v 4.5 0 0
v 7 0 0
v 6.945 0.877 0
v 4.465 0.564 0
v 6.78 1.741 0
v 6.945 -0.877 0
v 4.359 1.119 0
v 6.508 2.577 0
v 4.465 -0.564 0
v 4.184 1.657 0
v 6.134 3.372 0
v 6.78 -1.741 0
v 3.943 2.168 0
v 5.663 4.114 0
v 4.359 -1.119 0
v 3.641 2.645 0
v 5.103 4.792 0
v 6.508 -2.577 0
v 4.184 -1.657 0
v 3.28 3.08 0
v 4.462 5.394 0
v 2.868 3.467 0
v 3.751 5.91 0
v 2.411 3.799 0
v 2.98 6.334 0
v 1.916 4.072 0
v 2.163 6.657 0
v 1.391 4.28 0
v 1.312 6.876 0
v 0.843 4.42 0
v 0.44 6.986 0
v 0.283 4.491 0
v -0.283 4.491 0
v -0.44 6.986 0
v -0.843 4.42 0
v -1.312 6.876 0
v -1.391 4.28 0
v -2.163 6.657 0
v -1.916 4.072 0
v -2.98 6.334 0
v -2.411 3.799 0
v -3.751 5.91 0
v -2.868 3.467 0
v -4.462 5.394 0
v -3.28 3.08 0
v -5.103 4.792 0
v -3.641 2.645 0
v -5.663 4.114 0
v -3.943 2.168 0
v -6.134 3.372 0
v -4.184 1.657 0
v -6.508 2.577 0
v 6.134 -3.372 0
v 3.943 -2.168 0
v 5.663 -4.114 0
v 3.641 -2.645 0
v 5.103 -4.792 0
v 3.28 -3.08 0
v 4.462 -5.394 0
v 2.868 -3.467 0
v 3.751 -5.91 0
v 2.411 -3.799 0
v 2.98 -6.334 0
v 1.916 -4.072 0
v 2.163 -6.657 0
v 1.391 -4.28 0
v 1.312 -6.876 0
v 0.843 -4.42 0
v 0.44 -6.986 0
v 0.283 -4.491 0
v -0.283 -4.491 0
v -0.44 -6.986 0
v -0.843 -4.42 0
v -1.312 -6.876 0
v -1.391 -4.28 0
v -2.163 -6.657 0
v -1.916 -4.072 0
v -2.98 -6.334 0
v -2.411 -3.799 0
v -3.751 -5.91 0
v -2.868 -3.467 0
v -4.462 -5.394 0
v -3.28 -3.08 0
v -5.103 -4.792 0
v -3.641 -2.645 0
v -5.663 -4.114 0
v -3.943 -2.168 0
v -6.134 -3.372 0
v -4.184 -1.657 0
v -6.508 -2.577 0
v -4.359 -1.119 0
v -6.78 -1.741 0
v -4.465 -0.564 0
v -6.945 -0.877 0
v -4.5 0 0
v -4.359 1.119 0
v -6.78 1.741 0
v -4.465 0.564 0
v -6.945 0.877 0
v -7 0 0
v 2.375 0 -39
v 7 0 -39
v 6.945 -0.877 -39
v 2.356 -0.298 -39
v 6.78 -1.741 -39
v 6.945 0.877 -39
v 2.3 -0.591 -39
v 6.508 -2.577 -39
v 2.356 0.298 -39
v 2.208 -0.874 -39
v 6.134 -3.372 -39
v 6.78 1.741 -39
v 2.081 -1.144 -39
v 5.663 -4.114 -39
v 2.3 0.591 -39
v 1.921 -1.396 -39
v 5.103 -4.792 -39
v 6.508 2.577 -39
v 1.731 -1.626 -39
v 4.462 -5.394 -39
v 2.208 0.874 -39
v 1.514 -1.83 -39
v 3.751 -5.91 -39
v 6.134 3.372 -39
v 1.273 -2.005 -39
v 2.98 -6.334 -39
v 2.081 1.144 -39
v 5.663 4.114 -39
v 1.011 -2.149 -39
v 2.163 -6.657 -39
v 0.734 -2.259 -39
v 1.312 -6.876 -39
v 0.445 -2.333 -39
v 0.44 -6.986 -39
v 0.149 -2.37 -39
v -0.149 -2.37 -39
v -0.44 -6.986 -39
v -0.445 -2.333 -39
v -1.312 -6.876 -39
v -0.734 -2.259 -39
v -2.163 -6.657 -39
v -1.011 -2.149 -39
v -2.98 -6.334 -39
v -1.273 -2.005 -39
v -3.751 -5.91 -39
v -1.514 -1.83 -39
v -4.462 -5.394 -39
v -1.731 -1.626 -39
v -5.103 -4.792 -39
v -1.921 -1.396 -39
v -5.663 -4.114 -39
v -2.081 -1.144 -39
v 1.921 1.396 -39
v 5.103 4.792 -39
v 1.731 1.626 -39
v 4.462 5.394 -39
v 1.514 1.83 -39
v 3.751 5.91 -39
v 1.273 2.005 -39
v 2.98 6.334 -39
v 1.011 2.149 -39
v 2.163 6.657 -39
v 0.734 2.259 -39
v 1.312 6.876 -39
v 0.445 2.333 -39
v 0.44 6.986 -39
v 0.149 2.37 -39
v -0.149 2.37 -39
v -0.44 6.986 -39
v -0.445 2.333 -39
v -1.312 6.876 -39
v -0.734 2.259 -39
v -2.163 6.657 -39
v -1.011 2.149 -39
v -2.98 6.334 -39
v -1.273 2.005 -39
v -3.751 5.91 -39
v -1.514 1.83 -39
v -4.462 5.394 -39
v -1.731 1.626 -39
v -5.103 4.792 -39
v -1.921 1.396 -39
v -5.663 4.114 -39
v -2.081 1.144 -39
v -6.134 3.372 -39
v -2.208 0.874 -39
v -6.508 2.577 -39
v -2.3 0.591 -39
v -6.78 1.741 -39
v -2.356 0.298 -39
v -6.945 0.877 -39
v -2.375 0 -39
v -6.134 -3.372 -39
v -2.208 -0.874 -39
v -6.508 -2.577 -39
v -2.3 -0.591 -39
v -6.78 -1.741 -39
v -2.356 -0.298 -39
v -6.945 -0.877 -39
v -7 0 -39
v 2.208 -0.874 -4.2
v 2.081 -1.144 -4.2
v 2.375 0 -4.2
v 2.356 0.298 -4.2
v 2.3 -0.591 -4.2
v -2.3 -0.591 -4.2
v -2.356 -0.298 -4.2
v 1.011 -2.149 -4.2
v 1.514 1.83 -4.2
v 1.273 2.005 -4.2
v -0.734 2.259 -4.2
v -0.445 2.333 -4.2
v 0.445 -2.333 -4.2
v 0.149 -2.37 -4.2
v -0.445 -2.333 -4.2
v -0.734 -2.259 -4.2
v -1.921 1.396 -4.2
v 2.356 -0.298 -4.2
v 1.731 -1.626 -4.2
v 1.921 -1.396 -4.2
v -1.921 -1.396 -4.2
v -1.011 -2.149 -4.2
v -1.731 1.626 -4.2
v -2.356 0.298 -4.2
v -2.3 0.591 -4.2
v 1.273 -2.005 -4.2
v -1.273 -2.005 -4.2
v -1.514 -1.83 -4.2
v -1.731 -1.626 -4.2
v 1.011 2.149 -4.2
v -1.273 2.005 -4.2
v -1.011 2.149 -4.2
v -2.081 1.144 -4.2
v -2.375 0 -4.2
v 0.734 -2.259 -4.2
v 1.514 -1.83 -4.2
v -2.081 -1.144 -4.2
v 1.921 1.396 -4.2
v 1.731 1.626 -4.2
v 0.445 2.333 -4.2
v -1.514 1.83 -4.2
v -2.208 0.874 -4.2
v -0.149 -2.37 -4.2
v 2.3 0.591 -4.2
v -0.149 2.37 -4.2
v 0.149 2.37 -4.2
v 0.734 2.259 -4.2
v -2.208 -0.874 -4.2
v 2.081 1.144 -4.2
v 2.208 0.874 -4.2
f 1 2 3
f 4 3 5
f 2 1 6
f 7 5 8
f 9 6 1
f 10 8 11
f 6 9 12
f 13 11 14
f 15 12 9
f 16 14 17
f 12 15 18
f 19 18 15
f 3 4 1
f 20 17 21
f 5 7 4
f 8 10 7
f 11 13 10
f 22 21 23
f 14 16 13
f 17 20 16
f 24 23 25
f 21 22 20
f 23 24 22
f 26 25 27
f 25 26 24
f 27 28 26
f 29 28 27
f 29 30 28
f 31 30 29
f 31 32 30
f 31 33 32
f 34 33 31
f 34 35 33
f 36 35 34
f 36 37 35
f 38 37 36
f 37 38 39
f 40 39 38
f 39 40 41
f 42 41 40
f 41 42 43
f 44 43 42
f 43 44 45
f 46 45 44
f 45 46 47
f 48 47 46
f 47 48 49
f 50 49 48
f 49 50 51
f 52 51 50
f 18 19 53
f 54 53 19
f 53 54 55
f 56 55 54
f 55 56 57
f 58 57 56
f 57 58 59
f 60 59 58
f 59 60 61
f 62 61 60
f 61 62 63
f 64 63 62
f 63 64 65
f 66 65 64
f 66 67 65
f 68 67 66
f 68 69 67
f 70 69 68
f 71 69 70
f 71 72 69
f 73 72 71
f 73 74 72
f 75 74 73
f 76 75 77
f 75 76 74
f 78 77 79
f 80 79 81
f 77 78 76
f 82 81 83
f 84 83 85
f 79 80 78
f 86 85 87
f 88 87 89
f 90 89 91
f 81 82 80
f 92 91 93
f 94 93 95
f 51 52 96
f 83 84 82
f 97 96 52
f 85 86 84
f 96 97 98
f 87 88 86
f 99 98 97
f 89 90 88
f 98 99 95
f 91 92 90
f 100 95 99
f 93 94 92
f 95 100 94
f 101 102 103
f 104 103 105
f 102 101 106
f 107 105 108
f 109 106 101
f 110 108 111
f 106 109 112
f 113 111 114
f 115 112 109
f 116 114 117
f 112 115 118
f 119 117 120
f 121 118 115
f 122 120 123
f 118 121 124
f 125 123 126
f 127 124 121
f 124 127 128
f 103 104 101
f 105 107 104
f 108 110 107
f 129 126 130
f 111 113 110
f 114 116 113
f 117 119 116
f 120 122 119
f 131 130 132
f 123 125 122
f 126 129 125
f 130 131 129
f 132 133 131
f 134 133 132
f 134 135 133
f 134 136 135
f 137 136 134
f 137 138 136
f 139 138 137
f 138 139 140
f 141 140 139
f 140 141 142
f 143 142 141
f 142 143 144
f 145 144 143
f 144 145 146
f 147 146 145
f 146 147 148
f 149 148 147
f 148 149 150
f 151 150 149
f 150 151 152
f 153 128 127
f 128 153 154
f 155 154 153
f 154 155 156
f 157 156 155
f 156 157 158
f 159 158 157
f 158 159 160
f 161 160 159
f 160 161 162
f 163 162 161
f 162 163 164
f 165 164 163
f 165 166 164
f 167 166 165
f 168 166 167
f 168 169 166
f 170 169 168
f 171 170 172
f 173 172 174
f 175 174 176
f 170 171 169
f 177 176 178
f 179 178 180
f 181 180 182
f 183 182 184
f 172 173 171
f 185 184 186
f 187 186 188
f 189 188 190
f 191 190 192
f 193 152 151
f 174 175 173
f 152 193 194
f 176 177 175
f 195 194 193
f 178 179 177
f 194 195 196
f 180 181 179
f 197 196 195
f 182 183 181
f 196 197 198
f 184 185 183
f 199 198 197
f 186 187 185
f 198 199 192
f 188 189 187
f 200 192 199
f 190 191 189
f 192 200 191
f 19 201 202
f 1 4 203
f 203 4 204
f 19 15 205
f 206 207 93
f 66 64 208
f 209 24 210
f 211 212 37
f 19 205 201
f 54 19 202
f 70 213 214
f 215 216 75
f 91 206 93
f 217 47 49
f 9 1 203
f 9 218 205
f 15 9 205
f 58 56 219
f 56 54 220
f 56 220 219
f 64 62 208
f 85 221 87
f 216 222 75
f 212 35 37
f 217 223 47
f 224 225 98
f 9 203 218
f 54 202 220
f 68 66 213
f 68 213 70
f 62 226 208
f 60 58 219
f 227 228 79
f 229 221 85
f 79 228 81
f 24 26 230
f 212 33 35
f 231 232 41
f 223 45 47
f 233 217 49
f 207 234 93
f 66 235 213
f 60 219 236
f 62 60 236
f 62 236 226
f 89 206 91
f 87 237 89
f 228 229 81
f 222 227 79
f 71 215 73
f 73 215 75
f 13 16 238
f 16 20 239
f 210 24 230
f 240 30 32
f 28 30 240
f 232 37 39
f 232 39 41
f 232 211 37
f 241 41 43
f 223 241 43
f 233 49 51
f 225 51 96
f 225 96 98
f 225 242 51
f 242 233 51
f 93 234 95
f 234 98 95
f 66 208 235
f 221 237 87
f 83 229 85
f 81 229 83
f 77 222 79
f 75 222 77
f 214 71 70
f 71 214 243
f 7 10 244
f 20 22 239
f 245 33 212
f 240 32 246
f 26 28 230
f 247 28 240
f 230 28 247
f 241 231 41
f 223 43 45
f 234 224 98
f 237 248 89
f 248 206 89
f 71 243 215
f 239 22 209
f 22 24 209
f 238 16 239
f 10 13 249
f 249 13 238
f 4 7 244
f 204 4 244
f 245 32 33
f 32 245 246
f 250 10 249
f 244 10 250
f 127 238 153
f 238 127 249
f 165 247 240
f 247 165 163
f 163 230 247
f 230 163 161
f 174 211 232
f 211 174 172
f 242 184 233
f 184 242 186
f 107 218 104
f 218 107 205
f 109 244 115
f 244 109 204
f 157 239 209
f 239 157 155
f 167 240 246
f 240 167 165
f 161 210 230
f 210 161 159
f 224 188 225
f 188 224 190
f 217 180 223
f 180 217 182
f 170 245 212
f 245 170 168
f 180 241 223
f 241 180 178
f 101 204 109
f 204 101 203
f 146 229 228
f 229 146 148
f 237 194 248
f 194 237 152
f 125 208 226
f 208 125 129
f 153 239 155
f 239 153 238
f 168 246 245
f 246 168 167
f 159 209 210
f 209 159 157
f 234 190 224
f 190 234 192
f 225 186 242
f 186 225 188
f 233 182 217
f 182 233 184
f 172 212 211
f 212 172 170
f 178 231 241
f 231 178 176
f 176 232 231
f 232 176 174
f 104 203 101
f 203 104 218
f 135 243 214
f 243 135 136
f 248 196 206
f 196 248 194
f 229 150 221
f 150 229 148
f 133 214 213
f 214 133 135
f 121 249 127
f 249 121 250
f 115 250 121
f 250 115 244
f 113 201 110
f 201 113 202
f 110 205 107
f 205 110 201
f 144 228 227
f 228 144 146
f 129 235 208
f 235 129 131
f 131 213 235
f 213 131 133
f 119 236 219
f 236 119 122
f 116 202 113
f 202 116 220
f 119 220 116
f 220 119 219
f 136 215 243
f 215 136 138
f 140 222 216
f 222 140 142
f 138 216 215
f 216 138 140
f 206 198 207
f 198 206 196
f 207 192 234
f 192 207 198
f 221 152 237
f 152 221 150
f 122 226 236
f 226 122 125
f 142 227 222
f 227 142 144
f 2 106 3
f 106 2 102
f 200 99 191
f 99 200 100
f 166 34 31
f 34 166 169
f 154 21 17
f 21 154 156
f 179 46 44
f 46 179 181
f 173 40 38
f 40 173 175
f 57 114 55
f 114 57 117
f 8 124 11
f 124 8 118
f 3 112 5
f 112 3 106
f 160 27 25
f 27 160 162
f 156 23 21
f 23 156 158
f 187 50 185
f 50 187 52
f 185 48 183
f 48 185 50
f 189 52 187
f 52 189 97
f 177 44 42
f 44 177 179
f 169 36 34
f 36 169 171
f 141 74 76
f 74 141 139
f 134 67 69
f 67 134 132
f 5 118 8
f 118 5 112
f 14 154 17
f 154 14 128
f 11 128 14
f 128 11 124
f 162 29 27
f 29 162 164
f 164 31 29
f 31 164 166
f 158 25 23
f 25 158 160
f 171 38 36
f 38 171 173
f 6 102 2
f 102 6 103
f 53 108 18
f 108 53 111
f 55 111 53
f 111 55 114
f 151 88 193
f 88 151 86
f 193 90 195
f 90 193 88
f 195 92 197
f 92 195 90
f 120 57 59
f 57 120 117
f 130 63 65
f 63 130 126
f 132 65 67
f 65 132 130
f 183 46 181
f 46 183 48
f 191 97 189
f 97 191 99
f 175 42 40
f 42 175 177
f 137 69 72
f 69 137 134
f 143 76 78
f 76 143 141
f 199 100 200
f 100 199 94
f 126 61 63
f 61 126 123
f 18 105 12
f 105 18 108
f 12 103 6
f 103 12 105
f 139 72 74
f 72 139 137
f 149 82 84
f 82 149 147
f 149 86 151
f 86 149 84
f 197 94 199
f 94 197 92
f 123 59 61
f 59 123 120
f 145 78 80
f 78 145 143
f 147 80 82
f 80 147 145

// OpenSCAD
$fn = 50;


difference() {
	union() {
		translate(v = [0, 0, -39.0000000000]) {
			cylinder(h = 39, r = 7.0000000000);
		}
		cylinder(h = 0, r = 10.0000000000);
	}
	union() {
		translate(v = [0, 0, 0]) {
			rotate(a = [0, 0, 0]) {
				difference() {
					union() {
						#translate(v = [0, 0, -39.0000000000]) {
							cylinder(h = 39, r = 2.2500000000);
						}
						#translate(v = [0, 0, -4.2000000000]) {
							cylinder(h = 4.2000000000, r = 7.0000000000, r1 = 2.3750000000, r2 = 4.5000000000);
						}
						#translate(v = [0, 0, -39.0000000000]) {
							cylinder(h = 39, r = 2.3750000000);
						}
						#translate(v = [0, 0, -39.0000000000]) {
							cylinder(h = 39, r = 2.2500000000);
						}
					}
					union();
				}
			}
		}
	}
}
